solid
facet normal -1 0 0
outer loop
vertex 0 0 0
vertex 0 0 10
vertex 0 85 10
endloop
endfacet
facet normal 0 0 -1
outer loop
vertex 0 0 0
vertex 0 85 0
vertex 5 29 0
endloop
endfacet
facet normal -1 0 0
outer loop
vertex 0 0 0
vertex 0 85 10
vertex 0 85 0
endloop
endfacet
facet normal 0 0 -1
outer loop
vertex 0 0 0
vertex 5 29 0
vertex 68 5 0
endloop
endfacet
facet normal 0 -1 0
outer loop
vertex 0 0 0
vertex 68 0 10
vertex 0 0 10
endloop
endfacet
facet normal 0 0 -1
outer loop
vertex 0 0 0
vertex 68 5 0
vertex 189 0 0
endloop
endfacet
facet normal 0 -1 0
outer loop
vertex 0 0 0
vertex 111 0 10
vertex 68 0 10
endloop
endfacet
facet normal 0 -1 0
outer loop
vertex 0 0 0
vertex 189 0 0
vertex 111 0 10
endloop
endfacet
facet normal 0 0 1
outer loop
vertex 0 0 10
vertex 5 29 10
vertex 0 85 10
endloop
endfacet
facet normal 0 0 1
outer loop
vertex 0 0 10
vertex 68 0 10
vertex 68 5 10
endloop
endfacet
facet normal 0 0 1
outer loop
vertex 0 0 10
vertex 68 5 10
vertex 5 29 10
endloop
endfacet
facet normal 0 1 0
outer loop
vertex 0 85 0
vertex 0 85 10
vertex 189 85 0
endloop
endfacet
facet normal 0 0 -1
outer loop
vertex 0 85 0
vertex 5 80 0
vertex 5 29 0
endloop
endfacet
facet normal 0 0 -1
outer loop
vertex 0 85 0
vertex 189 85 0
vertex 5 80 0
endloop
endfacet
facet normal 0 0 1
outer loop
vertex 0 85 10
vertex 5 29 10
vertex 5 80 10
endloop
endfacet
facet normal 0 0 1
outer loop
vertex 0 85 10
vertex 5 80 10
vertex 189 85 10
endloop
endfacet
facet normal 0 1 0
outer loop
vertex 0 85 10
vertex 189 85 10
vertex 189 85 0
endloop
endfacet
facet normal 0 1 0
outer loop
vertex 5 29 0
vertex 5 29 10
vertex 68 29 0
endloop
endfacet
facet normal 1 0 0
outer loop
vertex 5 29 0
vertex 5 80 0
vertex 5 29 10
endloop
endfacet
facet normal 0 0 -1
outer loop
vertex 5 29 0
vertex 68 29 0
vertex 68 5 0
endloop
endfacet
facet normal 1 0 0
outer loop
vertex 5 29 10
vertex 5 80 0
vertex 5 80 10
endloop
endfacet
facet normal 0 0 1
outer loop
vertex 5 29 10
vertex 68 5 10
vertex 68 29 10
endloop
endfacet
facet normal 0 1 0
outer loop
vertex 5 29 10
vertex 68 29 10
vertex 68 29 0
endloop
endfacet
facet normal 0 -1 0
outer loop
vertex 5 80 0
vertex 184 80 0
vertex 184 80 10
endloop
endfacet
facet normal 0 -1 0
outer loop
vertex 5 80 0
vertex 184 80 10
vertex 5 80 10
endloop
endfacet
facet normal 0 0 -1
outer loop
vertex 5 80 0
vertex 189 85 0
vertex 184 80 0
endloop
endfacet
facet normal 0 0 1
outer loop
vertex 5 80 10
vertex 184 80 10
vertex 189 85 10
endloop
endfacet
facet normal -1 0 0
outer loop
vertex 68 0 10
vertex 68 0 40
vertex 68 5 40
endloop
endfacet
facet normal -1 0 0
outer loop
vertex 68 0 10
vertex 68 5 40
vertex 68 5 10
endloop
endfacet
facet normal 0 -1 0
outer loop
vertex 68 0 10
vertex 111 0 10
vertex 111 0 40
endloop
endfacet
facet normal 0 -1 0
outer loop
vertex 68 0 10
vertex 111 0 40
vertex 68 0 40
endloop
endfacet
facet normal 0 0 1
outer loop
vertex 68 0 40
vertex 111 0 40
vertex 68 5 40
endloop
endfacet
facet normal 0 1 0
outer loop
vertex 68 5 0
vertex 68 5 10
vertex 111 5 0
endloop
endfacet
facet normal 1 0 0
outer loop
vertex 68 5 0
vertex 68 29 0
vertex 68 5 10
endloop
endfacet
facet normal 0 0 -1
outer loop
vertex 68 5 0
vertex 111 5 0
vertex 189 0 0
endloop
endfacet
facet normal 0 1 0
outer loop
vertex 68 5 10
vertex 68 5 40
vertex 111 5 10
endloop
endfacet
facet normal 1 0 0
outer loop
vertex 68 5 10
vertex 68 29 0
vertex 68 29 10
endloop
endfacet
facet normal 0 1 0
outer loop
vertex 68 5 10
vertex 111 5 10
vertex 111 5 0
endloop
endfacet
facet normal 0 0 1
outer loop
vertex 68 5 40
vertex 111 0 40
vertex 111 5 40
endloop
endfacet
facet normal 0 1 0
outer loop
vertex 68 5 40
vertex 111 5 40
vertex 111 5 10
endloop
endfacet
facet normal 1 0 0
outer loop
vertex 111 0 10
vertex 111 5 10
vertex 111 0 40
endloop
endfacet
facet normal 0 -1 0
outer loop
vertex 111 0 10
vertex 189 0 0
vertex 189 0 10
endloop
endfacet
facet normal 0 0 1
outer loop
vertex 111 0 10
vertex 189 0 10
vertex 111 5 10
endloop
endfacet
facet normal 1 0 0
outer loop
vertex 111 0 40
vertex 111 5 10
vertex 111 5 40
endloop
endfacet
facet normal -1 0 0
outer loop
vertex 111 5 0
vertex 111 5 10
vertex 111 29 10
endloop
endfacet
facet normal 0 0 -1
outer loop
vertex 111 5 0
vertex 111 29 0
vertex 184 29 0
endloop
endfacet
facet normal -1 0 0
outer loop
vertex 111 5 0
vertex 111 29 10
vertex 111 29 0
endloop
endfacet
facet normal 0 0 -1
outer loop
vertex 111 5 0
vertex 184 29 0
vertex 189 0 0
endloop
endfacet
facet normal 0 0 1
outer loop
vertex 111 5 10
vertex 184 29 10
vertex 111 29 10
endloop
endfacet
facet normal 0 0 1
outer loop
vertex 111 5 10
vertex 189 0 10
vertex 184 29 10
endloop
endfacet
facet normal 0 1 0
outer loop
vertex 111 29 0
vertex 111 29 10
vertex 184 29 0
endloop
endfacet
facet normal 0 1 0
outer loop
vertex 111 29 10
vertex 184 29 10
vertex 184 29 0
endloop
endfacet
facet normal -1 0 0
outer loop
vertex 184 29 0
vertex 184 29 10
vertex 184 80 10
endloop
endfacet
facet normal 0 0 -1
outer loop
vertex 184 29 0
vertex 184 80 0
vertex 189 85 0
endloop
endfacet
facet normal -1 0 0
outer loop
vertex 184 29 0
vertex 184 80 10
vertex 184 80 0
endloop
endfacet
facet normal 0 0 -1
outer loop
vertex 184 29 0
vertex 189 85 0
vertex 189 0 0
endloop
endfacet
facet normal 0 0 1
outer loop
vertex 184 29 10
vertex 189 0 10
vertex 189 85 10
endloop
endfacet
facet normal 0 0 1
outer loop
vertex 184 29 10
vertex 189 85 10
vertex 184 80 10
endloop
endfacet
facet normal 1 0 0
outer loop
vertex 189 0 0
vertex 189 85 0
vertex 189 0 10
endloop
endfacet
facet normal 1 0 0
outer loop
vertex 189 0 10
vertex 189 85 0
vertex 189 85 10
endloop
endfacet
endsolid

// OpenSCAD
// holder for nintendo switch and remote

WALL=5;
W2=2*WALL;

// base unit
BW=179;
BD=51;
BH=10;

// remote
HW=43;
HD=24;
HH=40;


// 180+10

module main() {
  difference() {
    union() {
      cube([BW+W2,BD+HD+W2,BH]);
      #translate([(BW-HW)/2,0,0]) cube([HW,5,HH]);
    }
    translate([WALL,BD+HD+W2-BD-WALL,0]) cube([BW,BD,BH]);
    translate([(BW-HW)/2,WALL,0]) cube([HW,HD,HH]);
  }
}


main();
